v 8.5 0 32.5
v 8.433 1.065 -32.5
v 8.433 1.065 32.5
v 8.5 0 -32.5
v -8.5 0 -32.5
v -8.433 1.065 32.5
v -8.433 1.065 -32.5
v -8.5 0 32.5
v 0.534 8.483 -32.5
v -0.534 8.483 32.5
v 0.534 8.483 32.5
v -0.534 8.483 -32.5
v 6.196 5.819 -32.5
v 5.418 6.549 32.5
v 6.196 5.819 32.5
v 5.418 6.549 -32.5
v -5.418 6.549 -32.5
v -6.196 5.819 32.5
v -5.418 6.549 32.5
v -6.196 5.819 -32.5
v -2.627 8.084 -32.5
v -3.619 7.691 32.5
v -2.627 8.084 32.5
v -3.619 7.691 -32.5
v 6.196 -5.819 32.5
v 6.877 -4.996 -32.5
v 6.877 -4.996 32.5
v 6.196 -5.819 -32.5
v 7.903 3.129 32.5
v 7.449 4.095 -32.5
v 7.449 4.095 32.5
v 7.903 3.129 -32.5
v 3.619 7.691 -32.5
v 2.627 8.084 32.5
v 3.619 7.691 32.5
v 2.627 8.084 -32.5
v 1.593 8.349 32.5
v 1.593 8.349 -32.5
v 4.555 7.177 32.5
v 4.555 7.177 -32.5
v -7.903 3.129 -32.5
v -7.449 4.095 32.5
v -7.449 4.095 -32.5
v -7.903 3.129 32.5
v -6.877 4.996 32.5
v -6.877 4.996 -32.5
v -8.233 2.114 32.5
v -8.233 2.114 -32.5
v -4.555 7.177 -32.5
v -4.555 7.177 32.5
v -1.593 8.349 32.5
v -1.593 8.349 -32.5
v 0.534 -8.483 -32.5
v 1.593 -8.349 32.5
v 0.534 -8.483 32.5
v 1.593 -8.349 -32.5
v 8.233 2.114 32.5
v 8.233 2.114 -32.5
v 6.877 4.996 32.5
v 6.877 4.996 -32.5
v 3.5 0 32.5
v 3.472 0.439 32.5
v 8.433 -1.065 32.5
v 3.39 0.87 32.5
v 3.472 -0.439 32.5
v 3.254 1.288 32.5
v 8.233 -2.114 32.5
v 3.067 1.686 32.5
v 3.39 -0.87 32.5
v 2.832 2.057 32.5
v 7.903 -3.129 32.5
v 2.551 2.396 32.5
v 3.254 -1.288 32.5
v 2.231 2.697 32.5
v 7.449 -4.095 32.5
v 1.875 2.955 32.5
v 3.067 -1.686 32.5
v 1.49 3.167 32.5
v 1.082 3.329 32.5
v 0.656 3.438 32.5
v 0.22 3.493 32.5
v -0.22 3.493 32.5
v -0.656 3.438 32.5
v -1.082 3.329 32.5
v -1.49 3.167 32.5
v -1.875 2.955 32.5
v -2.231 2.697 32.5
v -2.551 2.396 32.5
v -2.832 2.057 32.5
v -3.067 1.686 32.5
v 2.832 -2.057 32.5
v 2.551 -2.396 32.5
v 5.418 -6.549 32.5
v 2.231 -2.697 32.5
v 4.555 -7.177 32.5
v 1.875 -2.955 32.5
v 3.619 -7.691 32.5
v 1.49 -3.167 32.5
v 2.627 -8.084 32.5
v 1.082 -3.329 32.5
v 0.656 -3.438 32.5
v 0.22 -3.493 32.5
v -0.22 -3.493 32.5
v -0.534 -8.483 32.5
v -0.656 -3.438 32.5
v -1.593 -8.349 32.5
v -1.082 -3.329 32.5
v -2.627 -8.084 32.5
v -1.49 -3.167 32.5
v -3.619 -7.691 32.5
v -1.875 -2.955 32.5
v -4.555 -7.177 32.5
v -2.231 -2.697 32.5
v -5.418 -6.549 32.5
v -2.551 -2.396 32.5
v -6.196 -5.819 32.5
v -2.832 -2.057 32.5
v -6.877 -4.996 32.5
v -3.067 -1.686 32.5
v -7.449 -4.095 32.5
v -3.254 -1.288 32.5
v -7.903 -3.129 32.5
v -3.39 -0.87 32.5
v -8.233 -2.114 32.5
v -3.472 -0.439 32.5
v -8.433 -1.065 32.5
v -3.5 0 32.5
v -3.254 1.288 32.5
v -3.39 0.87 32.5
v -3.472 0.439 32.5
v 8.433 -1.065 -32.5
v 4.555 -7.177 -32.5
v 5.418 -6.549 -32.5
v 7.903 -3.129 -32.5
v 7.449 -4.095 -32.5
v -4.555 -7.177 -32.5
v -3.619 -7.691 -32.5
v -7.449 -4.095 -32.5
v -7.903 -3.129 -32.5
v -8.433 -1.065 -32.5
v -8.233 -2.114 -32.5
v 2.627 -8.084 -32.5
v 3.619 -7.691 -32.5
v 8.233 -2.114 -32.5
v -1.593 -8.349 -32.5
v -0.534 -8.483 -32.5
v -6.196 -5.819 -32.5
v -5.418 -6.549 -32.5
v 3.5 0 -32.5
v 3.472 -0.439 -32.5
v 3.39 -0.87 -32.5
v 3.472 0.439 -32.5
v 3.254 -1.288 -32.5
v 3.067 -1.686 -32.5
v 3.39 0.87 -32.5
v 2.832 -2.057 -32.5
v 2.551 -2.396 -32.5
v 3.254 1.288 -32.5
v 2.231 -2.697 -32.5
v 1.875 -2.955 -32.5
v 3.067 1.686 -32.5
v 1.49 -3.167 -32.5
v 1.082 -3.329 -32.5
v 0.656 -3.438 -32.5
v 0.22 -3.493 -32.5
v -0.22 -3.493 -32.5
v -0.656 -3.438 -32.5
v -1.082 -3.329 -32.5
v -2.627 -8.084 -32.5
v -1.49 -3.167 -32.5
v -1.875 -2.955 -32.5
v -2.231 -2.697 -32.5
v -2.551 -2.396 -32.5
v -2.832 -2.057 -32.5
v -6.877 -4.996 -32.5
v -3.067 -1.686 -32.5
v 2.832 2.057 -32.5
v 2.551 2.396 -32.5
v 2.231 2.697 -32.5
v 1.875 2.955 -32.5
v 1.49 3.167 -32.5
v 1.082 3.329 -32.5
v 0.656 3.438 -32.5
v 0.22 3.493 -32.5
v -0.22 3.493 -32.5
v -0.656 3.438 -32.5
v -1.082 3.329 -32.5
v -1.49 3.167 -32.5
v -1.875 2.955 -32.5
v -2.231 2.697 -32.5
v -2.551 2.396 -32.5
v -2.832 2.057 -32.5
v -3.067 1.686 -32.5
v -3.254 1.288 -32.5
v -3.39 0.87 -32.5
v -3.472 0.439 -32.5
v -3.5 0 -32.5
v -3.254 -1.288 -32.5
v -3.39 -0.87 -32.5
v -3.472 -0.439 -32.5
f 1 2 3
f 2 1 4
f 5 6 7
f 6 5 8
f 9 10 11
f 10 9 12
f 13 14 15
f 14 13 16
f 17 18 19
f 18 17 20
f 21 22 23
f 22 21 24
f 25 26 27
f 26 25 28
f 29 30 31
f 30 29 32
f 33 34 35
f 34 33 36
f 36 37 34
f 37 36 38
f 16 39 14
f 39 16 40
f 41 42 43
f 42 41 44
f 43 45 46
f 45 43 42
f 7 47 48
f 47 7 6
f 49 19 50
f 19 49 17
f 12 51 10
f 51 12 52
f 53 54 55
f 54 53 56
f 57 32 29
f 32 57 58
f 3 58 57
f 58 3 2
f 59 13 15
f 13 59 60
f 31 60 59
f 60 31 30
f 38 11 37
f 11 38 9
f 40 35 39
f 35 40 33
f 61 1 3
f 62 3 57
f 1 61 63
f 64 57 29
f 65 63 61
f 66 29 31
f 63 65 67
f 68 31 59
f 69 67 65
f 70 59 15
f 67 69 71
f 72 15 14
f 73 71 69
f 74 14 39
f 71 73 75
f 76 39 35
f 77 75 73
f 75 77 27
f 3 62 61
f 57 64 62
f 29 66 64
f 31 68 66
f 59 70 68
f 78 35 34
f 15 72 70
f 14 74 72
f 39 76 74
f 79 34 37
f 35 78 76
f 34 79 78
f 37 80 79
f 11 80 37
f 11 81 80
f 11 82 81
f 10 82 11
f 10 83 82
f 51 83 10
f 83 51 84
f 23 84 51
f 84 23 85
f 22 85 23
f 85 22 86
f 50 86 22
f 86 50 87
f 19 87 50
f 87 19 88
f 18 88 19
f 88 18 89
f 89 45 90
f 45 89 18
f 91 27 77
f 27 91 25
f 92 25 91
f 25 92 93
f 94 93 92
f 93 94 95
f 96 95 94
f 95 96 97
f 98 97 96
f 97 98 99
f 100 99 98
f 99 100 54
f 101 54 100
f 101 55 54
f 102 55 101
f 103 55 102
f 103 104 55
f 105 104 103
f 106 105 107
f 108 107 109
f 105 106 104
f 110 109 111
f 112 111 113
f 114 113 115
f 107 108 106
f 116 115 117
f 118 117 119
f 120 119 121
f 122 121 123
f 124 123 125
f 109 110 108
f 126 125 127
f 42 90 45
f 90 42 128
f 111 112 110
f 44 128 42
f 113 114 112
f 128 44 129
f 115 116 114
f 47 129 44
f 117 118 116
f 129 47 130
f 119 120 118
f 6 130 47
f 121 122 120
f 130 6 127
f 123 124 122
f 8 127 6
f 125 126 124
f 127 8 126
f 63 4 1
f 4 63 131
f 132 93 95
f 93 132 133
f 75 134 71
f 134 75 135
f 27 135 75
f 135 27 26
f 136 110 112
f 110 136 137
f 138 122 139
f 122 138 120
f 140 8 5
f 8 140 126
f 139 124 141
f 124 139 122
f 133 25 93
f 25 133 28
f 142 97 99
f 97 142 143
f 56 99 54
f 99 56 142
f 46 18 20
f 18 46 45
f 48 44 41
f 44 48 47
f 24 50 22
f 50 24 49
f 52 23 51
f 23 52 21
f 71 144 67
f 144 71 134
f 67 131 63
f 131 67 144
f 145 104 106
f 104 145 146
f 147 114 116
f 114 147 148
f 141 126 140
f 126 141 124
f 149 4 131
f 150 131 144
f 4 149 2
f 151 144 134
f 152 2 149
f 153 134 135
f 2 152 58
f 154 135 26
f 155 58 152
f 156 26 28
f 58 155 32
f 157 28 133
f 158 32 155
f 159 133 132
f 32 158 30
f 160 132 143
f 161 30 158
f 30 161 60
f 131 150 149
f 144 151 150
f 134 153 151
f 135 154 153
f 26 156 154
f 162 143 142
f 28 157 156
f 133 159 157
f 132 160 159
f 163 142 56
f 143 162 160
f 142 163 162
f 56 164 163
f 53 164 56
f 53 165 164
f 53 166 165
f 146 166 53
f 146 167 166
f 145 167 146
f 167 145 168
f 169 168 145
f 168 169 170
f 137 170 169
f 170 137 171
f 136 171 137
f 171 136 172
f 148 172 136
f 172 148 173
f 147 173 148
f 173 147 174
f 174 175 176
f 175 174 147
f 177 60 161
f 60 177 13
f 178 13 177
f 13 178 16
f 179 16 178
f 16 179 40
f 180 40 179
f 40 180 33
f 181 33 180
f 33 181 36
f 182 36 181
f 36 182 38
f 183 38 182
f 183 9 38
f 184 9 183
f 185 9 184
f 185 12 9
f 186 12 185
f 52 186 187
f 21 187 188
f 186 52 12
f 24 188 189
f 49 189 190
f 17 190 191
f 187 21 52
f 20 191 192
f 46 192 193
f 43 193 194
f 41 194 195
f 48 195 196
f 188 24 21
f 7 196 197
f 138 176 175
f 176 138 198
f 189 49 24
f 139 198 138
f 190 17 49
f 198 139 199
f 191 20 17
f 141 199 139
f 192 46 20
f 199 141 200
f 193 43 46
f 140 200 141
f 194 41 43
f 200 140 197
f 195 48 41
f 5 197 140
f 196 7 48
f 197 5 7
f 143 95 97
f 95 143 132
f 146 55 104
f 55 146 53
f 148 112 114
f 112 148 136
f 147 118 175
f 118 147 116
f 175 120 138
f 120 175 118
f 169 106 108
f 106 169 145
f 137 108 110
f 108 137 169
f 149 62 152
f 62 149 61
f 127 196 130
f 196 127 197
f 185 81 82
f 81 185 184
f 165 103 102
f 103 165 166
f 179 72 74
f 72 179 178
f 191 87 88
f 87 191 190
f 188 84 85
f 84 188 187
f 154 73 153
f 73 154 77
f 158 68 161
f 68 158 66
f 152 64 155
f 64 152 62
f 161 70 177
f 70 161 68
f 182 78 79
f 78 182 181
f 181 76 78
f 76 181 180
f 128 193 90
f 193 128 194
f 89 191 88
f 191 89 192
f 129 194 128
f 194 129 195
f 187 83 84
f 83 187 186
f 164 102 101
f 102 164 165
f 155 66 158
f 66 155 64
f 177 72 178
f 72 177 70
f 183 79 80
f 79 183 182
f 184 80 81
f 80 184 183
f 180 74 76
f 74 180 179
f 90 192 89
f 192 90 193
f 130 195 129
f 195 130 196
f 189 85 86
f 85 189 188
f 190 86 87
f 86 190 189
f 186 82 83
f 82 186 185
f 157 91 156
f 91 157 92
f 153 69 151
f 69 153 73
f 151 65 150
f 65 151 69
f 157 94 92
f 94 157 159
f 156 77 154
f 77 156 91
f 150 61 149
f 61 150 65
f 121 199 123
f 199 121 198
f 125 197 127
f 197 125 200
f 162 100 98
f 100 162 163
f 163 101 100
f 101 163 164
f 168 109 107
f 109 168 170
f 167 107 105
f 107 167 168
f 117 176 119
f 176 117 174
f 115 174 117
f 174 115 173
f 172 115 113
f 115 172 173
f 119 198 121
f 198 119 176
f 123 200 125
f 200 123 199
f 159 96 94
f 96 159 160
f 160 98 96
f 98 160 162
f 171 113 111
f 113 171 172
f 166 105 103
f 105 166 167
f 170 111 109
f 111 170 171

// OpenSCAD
$fn = 50;


difference() {
	union() {
		translate(v = [0, 0, -32.5000000000]) {
			cylinder(h = 65, r = 8.5000000000);
		}
	}
	union() {
		translate(v = [0, 0, -100.0000000000]) {
			cylinder(h = 200, r = 3.5000000000);
		}
	}
}
